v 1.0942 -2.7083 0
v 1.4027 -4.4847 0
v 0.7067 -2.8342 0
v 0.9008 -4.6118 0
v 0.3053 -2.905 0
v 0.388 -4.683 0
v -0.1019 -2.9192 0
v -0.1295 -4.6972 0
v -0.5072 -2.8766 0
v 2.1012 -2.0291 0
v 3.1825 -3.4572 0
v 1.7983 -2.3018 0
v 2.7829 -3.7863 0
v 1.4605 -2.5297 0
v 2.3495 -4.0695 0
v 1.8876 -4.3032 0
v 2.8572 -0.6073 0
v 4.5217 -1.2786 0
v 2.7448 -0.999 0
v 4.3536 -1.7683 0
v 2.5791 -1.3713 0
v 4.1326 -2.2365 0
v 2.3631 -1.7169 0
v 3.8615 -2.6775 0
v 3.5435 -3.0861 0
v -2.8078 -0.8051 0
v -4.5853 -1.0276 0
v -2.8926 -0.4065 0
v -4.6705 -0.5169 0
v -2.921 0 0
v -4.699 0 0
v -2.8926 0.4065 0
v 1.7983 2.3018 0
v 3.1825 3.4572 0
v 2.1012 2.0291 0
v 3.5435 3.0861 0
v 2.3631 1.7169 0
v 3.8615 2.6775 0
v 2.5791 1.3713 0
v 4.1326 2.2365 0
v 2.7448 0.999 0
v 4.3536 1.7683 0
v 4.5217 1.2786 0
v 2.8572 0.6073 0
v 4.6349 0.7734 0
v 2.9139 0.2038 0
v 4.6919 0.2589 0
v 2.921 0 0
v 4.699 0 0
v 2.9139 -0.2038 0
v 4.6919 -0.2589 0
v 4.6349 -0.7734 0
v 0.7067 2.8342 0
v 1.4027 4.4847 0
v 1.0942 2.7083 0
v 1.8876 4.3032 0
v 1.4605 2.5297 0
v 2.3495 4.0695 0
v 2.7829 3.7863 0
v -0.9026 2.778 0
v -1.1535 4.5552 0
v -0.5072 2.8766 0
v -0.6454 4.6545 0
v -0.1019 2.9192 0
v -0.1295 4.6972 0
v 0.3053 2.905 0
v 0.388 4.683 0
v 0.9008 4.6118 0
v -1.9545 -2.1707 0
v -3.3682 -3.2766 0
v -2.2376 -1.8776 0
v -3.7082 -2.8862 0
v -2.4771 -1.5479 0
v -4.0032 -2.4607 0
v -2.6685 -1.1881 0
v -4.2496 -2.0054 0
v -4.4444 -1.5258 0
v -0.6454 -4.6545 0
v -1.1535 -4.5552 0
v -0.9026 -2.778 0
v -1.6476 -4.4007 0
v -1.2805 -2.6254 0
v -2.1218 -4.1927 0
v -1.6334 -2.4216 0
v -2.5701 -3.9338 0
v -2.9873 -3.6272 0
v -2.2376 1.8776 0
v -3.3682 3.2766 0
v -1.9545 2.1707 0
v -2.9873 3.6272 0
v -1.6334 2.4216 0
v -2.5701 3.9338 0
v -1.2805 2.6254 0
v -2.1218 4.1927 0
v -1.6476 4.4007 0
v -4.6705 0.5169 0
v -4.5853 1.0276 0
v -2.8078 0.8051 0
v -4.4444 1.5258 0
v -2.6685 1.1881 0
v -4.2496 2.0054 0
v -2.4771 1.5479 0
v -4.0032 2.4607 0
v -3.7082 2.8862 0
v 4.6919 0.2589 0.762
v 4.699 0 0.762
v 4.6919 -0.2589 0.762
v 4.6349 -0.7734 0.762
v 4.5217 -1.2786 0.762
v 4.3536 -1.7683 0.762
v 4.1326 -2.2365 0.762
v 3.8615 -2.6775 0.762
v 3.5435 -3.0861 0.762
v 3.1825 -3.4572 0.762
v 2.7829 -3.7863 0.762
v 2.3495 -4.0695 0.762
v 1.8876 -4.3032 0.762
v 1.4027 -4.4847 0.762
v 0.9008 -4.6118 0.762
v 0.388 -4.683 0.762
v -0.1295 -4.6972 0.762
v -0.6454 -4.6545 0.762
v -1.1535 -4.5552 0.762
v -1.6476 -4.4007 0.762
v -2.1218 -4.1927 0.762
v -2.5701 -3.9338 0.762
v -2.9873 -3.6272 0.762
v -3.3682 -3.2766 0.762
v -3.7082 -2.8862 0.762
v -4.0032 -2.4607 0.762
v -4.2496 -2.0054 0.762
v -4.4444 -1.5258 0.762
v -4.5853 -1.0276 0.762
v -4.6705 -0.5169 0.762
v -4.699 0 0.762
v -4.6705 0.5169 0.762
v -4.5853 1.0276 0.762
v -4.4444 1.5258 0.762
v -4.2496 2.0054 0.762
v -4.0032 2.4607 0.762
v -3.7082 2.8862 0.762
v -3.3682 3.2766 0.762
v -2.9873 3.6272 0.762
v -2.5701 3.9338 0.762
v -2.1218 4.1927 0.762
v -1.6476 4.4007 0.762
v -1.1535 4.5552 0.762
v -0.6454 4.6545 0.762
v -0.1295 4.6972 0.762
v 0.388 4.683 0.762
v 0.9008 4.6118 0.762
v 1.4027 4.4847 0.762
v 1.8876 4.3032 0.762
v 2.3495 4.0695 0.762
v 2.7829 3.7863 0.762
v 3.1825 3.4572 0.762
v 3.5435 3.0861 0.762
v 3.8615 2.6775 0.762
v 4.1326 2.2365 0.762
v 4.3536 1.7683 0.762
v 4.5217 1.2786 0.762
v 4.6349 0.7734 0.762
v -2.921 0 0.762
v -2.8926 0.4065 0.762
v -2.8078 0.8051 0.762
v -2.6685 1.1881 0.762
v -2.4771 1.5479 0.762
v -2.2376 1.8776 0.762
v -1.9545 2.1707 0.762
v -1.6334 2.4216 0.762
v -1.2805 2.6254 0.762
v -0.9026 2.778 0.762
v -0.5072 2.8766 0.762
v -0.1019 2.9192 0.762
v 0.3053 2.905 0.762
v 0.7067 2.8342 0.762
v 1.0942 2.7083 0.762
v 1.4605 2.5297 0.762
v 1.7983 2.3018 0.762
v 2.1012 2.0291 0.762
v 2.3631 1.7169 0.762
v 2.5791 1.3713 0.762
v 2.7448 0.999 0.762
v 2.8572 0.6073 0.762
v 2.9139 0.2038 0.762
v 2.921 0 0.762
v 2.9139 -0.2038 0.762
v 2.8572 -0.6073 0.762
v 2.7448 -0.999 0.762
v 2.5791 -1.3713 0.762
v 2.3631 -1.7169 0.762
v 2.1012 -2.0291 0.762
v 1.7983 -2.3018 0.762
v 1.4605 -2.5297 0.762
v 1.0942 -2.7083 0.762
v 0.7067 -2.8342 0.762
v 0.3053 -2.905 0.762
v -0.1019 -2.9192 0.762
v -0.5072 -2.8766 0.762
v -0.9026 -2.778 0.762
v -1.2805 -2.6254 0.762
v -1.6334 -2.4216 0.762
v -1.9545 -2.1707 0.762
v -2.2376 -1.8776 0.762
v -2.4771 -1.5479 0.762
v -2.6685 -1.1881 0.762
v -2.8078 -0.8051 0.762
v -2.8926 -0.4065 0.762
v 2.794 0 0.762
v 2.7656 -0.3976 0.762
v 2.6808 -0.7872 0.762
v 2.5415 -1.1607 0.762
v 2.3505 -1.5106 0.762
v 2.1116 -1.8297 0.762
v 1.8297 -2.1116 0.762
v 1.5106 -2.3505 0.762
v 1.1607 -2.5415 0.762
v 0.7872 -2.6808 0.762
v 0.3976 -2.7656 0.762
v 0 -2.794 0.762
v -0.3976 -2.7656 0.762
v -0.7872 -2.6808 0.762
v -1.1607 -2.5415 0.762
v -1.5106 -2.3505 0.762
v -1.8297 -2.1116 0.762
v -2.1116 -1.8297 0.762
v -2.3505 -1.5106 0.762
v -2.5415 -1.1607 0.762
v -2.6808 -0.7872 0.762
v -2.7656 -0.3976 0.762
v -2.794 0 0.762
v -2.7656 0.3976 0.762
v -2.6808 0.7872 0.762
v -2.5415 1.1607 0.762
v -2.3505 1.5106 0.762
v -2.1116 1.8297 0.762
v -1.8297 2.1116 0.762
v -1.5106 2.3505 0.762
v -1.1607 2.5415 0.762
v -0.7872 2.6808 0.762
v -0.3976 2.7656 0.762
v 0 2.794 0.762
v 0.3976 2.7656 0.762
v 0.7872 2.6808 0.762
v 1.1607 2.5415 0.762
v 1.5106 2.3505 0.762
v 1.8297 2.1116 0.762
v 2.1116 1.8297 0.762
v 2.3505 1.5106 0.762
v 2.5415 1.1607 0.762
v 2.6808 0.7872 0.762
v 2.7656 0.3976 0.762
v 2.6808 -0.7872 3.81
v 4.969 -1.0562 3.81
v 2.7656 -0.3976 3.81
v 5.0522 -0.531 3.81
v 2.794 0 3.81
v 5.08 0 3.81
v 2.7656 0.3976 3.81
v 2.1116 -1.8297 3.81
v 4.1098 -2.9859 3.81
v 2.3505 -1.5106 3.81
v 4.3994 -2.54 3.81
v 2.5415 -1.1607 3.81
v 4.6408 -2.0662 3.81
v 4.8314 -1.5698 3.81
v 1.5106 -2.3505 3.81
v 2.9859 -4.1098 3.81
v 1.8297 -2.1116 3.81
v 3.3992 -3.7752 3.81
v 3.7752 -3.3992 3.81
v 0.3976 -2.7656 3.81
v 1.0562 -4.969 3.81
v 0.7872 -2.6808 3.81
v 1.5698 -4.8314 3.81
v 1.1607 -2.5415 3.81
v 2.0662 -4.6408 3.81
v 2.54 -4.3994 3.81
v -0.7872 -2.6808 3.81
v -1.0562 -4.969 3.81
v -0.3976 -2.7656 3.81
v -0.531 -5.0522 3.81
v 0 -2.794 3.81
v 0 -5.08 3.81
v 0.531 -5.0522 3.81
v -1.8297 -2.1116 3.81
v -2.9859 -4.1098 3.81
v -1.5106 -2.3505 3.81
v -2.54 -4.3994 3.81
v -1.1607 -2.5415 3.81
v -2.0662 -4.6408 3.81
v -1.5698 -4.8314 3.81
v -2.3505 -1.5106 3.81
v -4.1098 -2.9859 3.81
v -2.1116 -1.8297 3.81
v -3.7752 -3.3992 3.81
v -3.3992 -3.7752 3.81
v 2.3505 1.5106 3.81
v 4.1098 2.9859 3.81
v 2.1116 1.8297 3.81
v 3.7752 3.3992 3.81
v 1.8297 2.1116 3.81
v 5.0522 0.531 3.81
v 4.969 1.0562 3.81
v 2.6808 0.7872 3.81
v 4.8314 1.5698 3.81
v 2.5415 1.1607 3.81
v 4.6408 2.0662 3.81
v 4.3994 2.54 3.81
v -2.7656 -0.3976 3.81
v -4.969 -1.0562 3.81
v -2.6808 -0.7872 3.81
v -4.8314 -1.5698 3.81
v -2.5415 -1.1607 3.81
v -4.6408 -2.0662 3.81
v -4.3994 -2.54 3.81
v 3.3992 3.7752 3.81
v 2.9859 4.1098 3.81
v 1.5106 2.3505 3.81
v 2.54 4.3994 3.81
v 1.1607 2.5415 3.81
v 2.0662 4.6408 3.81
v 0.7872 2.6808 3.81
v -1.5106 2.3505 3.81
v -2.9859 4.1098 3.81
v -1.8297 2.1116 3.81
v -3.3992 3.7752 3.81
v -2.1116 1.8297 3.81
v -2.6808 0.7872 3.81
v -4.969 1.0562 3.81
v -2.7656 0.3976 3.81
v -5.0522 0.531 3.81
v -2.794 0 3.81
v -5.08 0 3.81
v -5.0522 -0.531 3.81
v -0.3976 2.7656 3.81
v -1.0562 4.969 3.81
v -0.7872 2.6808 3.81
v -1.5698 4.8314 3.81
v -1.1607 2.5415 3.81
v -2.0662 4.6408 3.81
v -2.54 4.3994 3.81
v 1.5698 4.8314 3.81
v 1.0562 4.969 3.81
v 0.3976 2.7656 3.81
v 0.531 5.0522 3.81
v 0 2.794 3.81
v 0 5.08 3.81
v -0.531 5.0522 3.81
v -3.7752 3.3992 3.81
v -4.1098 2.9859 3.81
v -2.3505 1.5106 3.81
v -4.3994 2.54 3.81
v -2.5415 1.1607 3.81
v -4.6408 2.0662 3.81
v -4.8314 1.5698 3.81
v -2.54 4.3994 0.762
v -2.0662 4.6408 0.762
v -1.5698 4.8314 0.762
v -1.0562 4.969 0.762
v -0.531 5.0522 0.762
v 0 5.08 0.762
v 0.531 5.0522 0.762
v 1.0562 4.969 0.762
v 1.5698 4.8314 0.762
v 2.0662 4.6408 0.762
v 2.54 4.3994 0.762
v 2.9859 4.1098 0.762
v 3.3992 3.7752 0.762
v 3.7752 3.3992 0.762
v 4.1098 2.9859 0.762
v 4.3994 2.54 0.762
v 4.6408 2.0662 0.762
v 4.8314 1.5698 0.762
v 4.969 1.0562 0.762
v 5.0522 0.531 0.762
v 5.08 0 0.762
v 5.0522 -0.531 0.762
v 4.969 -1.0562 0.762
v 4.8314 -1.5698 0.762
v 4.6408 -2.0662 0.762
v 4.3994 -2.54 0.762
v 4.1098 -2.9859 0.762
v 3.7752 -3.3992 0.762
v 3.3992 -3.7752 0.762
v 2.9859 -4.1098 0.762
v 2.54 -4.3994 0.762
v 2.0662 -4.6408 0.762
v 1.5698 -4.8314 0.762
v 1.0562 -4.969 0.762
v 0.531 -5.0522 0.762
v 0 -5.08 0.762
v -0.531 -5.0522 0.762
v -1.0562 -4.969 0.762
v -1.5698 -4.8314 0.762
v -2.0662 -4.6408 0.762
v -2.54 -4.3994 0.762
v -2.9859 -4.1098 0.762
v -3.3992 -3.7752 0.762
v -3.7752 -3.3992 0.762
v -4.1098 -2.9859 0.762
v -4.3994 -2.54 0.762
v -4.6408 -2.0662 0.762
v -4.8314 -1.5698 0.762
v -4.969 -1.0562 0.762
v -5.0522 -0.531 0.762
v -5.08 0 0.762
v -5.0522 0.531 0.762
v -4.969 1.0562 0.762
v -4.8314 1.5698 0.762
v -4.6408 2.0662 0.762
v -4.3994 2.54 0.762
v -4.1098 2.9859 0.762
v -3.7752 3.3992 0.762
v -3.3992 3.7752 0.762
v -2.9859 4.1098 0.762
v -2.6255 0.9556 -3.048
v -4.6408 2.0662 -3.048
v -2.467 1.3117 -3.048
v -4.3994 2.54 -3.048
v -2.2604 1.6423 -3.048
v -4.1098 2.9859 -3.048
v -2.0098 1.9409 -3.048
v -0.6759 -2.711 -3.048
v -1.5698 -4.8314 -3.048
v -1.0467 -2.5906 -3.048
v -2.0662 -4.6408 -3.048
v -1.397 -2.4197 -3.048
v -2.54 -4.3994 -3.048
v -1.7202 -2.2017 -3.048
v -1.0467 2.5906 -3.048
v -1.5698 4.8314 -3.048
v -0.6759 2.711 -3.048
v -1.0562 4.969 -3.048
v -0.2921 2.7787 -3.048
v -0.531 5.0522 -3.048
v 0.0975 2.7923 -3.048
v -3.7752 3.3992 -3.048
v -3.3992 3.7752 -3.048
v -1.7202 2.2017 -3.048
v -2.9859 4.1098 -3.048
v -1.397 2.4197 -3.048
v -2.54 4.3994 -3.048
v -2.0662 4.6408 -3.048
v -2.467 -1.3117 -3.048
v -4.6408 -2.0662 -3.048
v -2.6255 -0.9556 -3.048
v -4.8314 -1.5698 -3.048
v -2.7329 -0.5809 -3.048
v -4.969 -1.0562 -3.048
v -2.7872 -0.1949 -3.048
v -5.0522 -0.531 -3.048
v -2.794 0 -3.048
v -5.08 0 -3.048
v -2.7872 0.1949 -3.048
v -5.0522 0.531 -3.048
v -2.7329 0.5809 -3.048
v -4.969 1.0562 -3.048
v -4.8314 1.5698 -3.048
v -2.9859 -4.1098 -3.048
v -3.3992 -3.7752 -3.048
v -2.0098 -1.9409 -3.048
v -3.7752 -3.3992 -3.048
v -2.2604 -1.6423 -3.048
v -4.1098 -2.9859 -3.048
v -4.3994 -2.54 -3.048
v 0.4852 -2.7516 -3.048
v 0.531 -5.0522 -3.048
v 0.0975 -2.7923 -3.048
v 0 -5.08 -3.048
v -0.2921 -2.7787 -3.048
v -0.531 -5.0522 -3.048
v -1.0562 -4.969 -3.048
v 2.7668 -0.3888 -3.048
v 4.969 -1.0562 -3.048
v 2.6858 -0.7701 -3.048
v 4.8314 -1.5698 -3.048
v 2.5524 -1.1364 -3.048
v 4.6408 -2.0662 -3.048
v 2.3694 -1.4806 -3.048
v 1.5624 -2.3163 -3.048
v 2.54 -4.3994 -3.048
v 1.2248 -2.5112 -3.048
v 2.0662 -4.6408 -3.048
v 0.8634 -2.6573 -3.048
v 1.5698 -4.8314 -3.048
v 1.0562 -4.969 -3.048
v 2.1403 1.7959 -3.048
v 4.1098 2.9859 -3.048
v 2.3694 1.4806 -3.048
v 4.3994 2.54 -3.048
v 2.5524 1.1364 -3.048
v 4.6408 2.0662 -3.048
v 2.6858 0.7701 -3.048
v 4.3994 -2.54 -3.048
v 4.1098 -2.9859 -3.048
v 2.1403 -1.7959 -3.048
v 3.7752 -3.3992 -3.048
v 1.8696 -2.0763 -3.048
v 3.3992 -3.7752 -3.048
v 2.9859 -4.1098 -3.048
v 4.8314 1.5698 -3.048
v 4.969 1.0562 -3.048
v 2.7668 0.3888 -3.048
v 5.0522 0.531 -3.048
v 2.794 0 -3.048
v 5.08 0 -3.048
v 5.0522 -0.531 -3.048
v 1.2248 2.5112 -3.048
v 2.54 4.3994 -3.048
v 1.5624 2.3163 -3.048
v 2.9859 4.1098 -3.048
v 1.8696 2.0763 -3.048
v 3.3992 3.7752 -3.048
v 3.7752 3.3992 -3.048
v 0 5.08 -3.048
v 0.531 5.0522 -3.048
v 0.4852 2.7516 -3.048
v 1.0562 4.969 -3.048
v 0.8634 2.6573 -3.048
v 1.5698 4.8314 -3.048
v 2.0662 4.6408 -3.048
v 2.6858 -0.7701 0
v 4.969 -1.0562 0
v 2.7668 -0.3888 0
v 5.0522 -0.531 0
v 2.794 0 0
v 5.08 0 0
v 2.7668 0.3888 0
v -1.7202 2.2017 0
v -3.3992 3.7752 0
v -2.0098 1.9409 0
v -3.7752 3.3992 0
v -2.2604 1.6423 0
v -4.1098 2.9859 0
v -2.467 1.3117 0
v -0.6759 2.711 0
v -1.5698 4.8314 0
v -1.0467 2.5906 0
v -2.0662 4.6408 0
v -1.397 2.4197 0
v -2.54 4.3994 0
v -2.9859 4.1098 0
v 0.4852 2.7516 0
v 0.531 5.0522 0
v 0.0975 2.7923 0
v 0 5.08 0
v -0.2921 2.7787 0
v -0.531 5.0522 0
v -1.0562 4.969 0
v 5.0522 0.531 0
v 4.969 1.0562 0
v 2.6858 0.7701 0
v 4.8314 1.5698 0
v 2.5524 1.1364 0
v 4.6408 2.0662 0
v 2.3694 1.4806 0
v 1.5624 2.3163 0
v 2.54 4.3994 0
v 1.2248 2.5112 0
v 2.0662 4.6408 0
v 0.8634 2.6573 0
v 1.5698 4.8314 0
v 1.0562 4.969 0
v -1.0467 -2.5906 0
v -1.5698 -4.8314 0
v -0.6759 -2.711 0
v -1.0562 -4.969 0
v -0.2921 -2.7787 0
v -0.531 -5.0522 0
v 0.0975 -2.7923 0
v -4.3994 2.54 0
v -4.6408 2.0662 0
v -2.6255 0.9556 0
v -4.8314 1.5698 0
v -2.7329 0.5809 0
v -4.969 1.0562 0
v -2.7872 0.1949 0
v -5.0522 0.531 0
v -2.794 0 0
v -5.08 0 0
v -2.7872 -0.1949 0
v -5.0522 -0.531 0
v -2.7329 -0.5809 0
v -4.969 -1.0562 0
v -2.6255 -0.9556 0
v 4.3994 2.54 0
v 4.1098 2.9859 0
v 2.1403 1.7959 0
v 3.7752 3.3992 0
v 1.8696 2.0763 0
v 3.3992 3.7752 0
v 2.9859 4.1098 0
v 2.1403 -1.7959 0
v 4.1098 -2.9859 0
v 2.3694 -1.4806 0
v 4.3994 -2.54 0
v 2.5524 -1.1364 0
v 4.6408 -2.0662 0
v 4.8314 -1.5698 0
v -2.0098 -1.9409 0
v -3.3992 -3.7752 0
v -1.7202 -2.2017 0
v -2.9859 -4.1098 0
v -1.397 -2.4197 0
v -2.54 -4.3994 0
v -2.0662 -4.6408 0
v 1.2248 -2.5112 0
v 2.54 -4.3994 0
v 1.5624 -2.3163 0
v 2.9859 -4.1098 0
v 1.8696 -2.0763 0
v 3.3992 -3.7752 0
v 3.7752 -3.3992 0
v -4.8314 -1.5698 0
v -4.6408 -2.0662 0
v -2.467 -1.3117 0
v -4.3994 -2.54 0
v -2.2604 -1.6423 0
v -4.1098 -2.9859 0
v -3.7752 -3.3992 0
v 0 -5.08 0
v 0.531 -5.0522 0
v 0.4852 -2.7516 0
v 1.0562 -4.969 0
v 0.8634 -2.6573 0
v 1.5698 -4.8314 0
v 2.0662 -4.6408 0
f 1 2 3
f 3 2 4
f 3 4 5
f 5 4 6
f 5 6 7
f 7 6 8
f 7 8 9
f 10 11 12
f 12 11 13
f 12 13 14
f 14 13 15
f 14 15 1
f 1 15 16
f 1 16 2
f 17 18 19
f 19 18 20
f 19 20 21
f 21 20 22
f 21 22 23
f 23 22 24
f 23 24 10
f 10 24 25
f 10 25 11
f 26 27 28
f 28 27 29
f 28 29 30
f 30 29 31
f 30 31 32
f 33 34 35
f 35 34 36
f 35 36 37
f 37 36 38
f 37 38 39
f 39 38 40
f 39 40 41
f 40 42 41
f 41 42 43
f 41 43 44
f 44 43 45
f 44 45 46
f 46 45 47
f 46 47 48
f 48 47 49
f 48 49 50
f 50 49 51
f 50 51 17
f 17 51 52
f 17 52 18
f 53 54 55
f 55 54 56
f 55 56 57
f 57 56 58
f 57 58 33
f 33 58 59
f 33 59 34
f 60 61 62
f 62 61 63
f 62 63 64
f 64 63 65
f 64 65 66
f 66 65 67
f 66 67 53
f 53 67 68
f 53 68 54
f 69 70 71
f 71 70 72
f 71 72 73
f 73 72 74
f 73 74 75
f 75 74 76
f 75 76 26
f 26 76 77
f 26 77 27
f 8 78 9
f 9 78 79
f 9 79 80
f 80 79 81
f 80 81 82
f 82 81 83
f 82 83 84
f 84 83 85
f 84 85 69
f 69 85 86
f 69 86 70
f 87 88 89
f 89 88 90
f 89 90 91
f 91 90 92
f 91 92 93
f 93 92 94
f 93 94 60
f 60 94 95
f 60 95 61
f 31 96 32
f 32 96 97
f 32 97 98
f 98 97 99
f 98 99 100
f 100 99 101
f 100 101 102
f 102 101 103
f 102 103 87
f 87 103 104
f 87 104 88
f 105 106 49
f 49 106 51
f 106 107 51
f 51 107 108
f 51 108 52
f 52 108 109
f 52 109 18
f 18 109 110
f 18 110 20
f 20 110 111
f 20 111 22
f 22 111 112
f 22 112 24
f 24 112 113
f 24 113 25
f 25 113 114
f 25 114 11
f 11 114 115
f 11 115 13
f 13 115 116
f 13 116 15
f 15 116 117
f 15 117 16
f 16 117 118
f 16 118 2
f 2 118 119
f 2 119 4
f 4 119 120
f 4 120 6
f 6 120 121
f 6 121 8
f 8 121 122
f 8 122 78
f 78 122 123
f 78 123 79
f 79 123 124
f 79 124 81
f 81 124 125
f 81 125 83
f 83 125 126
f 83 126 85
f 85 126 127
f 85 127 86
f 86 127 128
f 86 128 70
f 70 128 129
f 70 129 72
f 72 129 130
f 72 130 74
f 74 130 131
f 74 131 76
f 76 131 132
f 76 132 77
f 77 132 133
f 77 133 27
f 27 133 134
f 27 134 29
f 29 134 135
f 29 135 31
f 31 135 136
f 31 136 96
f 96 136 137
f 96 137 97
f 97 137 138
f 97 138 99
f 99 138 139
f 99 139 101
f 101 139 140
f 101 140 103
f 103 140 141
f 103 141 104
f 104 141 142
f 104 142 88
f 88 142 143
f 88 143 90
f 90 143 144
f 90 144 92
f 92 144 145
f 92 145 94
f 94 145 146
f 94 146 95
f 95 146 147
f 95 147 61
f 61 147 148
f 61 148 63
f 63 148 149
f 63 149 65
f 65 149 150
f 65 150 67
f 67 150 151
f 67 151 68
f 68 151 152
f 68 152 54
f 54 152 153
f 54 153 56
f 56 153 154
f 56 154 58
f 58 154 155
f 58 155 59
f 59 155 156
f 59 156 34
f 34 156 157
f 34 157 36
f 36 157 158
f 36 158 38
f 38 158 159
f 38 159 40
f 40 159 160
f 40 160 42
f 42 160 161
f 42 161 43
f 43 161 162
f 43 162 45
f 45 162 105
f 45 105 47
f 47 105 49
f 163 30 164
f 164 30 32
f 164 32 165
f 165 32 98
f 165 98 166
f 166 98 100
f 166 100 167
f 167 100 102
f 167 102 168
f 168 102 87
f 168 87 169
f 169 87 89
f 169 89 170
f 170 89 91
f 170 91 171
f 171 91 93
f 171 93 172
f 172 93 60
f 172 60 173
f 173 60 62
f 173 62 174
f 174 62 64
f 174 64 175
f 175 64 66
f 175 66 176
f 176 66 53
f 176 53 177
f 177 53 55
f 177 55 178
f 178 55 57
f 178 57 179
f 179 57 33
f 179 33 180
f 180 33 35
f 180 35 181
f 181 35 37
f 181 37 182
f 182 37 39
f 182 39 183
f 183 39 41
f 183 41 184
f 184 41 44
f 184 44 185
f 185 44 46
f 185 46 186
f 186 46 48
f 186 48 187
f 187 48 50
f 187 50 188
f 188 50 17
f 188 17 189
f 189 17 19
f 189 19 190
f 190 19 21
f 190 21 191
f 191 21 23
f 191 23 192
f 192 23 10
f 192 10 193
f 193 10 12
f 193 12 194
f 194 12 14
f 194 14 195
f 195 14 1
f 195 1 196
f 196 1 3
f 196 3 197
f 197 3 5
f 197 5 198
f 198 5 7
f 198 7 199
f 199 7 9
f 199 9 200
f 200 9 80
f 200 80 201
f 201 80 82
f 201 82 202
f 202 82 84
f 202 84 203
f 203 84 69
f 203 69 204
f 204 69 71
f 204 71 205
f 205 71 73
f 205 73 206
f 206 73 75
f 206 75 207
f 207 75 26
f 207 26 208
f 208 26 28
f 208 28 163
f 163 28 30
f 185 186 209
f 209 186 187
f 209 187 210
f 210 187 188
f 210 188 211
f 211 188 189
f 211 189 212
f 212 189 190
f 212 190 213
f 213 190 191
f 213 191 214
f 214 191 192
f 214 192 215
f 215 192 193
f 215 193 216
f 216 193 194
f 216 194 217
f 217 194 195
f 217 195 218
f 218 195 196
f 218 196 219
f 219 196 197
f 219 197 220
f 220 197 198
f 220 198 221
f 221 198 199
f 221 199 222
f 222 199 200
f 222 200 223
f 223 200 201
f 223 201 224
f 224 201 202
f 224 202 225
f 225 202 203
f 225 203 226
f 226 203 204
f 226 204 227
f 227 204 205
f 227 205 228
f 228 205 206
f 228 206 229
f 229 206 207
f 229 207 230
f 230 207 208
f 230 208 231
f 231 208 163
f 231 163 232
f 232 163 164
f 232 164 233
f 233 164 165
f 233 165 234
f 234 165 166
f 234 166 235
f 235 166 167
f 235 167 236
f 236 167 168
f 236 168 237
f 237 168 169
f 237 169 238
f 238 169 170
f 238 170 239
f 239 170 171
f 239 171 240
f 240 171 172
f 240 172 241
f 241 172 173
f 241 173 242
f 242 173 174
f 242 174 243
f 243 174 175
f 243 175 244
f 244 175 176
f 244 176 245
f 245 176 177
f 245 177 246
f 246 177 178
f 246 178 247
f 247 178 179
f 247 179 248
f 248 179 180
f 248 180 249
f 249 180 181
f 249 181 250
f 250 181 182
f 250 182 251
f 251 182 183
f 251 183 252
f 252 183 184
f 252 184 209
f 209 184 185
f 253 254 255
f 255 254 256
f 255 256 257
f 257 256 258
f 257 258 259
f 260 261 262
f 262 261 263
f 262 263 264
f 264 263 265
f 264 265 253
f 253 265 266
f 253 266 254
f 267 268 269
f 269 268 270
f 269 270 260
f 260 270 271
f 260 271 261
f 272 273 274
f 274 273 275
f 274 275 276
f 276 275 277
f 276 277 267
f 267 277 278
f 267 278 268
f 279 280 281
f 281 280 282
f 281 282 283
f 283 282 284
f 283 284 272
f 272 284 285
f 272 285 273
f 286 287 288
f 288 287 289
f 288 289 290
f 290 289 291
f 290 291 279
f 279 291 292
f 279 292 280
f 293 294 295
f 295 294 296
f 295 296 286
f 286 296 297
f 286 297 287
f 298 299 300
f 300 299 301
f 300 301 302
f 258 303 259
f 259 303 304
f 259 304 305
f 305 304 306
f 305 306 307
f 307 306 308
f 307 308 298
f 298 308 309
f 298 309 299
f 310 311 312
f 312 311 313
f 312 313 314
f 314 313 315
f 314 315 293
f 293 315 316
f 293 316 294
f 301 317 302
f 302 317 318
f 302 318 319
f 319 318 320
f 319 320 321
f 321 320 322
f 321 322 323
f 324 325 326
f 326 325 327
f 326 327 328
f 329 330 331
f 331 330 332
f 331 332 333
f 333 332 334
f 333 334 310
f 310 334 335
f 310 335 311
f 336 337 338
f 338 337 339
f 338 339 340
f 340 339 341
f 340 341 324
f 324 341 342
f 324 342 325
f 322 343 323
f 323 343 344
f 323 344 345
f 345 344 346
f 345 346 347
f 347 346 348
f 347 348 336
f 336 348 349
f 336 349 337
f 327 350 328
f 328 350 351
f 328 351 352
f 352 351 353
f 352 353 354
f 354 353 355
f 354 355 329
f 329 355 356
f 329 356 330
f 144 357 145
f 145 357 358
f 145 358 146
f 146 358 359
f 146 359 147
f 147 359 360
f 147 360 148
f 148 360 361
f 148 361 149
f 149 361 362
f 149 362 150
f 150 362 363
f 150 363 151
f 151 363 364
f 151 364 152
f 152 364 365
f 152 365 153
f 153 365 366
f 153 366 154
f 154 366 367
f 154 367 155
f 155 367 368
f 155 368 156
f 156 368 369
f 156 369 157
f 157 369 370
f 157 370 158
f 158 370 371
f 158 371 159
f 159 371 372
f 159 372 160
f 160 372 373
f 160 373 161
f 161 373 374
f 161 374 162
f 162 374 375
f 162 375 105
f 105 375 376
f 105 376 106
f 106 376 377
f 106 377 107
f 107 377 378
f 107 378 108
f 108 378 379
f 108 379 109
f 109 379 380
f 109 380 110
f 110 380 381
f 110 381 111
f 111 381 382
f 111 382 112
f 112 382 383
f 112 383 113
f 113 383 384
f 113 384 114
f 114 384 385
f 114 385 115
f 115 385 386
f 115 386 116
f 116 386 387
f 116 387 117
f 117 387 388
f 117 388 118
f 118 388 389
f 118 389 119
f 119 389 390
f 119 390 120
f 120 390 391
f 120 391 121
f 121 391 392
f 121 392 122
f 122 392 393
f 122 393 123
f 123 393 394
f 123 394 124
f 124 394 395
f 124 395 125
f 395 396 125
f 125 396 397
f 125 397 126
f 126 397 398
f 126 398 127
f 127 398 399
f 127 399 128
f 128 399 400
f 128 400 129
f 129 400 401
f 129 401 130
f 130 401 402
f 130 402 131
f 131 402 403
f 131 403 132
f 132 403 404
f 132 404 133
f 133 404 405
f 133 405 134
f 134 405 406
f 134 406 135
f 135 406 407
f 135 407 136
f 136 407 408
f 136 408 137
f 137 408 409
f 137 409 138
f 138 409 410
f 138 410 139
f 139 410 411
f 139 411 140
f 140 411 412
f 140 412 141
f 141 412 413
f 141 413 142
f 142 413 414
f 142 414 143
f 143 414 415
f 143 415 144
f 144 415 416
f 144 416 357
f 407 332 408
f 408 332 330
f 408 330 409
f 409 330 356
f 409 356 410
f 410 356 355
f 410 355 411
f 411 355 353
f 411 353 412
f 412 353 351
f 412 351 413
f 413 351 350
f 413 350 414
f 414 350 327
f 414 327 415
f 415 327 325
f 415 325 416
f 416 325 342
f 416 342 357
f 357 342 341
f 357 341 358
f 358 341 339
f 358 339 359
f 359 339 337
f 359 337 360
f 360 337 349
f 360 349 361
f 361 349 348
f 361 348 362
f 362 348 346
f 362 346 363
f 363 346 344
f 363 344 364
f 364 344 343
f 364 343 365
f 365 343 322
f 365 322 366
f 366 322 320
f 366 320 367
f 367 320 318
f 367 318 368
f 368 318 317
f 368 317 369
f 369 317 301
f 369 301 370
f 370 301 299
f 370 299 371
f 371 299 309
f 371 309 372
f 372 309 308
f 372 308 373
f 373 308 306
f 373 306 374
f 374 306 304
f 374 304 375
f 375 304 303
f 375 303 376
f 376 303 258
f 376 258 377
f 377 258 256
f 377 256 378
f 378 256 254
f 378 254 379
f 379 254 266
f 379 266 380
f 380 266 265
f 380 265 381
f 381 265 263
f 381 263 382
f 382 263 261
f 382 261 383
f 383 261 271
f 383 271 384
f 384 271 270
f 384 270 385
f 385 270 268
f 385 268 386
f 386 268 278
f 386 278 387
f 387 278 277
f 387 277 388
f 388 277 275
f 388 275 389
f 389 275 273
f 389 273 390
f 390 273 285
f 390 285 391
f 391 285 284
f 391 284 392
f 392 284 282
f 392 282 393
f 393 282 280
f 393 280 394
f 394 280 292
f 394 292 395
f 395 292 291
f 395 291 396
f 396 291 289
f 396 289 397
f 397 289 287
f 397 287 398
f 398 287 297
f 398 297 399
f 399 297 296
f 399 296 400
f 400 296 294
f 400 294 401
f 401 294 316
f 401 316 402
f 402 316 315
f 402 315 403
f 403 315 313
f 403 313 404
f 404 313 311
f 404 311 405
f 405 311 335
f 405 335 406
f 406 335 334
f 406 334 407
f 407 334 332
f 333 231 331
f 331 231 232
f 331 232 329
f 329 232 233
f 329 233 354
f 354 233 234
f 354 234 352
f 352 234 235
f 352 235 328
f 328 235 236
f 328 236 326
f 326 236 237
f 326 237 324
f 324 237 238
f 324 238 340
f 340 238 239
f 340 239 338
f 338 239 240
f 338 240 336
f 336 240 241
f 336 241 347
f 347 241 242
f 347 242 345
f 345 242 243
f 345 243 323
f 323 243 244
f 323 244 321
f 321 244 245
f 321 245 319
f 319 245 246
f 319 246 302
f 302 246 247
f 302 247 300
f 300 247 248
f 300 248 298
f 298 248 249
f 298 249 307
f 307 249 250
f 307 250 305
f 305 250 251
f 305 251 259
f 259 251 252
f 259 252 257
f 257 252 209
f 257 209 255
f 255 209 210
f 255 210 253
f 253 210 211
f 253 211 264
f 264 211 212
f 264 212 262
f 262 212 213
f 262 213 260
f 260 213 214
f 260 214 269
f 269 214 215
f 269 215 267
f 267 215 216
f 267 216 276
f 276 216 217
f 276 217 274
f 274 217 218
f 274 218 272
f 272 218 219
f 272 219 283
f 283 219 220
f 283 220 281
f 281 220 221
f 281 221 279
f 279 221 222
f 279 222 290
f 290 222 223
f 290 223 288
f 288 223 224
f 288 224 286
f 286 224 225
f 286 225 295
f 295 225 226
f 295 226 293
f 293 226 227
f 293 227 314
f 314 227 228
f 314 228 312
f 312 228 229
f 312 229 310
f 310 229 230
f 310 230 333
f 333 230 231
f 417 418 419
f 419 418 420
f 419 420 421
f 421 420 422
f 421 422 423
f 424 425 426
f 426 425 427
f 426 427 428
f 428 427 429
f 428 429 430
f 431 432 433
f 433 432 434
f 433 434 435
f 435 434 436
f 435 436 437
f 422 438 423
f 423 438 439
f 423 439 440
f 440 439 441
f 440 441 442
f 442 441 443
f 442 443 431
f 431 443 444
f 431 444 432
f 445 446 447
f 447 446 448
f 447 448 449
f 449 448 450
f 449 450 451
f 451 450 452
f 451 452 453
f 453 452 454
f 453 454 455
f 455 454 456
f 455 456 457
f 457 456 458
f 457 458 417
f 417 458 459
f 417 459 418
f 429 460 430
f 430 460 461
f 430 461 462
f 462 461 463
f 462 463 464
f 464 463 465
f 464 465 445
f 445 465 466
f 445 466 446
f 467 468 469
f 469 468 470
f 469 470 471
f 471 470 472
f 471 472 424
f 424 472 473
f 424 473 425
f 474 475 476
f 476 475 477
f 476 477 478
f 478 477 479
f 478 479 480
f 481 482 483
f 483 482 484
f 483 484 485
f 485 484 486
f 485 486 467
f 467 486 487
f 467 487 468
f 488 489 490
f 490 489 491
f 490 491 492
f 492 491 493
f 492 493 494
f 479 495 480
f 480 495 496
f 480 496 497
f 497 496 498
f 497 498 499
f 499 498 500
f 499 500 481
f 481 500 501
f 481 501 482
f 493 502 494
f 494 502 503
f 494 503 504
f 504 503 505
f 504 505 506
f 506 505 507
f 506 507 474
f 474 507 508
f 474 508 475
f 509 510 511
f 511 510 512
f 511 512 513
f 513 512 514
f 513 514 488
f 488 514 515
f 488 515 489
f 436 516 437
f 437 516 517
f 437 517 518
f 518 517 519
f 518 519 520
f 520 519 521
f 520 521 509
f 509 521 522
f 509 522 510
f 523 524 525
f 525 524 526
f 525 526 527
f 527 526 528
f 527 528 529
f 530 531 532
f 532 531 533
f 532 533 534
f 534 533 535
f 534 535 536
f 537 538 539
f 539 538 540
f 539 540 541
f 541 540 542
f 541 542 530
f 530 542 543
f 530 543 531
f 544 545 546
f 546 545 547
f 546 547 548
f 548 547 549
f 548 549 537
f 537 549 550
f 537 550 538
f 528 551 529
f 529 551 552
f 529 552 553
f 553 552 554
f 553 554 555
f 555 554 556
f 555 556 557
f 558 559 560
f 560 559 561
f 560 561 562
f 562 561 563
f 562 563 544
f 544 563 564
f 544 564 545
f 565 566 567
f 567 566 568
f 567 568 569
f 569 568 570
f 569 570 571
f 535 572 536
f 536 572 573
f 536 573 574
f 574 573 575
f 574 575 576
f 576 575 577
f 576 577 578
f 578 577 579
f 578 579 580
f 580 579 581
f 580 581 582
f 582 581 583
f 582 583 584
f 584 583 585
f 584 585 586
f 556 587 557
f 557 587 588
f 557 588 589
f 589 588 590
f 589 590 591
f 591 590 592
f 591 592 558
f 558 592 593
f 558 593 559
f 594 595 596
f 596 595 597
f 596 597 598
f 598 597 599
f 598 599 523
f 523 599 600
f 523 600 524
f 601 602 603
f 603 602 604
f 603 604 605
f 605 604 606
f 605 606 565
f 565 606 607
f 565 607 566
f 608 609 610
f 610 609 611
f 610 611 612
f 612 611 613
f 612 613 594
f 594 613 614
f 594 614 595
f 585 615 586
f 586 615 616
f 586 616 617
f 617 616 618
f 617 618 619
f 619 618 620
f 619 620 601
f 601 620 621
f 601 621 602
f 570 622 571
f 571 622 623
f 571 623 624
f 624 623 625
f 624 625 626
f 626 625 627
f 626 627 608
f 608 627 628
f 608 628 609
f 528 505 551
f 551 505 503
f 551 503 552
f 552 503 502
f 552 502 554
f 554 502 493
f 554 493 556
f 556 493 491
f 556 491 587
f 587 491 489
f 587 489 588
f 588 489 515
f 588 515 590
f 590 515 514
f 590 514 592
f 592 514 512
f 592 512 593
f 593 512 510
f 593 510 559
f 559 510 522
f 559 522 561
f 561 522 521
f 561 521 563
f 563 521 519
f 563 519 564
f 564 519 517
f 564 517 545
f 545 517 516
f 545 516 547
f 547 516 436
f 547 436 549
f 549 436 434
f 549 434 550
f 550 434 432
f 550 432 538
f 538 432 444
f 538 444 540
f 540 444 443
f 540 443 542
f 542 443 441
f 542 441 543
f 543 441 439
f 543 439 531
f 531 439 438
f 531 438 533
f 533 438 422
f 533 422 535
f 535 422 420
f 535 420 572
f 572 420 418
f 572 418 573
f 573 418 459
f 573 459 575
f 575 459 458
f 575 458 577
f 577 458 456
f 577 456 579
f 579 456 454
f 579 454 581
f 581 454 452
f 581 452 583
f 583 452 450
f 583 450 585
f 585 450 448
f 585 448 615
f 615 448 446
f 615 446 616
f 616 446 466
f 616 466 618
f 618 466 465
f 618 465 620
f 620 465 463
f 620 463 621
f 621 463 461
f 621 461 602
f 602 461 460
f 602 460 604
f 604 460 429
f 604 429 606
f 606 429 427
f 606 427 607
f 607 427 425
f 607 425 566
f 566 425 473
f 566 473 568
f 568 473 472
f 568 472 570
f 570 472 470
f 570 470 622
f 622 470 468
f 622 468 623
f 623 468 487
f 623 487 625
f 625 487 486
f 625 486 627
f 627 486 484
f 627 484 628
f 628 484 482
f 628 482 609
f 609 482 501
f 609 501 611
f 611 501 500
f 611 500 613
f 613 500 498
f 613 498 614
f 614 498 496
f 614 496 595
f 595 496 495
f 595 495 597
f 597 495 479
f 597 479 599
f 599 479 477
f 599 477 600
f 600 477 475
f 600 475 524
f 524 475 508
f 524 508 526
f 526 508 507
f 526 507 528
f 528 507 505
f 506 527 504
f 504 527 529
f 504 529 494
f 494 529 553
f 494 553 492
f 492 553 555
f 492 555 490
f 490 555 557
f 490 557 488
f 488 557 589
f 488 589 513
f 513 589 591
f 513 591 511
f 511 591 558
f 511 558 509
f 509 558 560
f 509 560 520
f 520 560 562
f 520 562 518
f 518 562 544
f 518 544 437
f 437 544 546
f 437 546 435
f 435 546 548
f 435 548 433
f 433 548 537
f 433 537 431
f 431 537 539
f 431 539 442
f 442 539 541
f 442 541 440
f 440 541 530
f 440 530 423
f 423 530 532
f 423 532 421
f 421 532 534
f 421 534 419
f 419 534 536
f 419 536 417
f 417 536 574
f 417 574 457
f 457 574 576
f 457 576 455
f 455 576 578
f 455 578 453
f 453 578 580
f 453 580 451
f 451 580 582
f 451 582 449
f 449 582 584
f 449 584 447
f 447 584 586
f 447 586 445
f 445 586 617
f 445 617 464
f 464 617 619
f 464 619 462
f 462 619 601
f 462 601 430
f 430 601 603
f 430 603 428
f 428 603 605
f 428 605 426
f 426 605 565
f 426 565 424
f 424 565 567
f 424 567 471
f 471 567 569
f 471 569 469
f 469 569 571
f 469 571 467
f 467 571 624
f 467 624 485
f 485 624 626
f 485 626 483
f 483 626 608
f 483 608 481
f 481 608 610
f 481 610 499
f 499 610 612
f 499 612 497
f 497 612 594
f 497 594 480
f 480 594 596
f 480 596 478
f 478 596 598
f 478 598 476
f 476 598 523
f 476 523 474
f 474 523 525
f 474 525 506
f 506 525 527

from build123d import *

# Parameters (mm, degrees)
SKETCH1_R           = 4.699
SKETCH1_R_2         = 2.921
BOSS_EXTRUDE2_DEPTH = 0.762
SKETCH3_R           = 5.08
SKETCH3_R_2         = 2.794
BOSS_EXTRUDE3_DEPTH = 3.048
SKETCH4_R           = 5.08
SKETCH4_R_2         = 2.794
BOSS_EXTRUDE4_DEPTH = 3.048


with BuildPart() as part:
    # Sketch1 → Boss-Extrude2 (new body)
    with BuildSketch(Plane.XY):
        Circle(SKETCH1_R)
        Circle(SKETCH1_R_2, mode=Mode.SUBTRACT)
    extrude(amount=BOSS_EXTRUDE2_DEPTH)

    # Sketch3 → Boss-Extrude3 (add)
    with BuildSketch(Plane.XY.offset(0.762)):
        Circle(SKETCH3_R)
        Circle(SKETCH3_R_2, mode=Mode.SUBTRACT)
    extrude(amount=BOSS_EXTRUDE3_DEPTH)


with BuildPart() as body_2:
    # Sketch4 → Boss-Extrude4 (new body)
    with BuildSketch(Plane(origin=(0, 0, 0), x_dir=(-1, 0, 0), z_dir=(0, 0, -1))):
        Circle(SKETCH4_R)
        Circle(SKETCH4_R_2, mode=Mode.SUBTRACT)
    extrude(amount=BOSS_EXTRUDE4_DEPTH)


solid = Compound([part.part, body_2.part])
